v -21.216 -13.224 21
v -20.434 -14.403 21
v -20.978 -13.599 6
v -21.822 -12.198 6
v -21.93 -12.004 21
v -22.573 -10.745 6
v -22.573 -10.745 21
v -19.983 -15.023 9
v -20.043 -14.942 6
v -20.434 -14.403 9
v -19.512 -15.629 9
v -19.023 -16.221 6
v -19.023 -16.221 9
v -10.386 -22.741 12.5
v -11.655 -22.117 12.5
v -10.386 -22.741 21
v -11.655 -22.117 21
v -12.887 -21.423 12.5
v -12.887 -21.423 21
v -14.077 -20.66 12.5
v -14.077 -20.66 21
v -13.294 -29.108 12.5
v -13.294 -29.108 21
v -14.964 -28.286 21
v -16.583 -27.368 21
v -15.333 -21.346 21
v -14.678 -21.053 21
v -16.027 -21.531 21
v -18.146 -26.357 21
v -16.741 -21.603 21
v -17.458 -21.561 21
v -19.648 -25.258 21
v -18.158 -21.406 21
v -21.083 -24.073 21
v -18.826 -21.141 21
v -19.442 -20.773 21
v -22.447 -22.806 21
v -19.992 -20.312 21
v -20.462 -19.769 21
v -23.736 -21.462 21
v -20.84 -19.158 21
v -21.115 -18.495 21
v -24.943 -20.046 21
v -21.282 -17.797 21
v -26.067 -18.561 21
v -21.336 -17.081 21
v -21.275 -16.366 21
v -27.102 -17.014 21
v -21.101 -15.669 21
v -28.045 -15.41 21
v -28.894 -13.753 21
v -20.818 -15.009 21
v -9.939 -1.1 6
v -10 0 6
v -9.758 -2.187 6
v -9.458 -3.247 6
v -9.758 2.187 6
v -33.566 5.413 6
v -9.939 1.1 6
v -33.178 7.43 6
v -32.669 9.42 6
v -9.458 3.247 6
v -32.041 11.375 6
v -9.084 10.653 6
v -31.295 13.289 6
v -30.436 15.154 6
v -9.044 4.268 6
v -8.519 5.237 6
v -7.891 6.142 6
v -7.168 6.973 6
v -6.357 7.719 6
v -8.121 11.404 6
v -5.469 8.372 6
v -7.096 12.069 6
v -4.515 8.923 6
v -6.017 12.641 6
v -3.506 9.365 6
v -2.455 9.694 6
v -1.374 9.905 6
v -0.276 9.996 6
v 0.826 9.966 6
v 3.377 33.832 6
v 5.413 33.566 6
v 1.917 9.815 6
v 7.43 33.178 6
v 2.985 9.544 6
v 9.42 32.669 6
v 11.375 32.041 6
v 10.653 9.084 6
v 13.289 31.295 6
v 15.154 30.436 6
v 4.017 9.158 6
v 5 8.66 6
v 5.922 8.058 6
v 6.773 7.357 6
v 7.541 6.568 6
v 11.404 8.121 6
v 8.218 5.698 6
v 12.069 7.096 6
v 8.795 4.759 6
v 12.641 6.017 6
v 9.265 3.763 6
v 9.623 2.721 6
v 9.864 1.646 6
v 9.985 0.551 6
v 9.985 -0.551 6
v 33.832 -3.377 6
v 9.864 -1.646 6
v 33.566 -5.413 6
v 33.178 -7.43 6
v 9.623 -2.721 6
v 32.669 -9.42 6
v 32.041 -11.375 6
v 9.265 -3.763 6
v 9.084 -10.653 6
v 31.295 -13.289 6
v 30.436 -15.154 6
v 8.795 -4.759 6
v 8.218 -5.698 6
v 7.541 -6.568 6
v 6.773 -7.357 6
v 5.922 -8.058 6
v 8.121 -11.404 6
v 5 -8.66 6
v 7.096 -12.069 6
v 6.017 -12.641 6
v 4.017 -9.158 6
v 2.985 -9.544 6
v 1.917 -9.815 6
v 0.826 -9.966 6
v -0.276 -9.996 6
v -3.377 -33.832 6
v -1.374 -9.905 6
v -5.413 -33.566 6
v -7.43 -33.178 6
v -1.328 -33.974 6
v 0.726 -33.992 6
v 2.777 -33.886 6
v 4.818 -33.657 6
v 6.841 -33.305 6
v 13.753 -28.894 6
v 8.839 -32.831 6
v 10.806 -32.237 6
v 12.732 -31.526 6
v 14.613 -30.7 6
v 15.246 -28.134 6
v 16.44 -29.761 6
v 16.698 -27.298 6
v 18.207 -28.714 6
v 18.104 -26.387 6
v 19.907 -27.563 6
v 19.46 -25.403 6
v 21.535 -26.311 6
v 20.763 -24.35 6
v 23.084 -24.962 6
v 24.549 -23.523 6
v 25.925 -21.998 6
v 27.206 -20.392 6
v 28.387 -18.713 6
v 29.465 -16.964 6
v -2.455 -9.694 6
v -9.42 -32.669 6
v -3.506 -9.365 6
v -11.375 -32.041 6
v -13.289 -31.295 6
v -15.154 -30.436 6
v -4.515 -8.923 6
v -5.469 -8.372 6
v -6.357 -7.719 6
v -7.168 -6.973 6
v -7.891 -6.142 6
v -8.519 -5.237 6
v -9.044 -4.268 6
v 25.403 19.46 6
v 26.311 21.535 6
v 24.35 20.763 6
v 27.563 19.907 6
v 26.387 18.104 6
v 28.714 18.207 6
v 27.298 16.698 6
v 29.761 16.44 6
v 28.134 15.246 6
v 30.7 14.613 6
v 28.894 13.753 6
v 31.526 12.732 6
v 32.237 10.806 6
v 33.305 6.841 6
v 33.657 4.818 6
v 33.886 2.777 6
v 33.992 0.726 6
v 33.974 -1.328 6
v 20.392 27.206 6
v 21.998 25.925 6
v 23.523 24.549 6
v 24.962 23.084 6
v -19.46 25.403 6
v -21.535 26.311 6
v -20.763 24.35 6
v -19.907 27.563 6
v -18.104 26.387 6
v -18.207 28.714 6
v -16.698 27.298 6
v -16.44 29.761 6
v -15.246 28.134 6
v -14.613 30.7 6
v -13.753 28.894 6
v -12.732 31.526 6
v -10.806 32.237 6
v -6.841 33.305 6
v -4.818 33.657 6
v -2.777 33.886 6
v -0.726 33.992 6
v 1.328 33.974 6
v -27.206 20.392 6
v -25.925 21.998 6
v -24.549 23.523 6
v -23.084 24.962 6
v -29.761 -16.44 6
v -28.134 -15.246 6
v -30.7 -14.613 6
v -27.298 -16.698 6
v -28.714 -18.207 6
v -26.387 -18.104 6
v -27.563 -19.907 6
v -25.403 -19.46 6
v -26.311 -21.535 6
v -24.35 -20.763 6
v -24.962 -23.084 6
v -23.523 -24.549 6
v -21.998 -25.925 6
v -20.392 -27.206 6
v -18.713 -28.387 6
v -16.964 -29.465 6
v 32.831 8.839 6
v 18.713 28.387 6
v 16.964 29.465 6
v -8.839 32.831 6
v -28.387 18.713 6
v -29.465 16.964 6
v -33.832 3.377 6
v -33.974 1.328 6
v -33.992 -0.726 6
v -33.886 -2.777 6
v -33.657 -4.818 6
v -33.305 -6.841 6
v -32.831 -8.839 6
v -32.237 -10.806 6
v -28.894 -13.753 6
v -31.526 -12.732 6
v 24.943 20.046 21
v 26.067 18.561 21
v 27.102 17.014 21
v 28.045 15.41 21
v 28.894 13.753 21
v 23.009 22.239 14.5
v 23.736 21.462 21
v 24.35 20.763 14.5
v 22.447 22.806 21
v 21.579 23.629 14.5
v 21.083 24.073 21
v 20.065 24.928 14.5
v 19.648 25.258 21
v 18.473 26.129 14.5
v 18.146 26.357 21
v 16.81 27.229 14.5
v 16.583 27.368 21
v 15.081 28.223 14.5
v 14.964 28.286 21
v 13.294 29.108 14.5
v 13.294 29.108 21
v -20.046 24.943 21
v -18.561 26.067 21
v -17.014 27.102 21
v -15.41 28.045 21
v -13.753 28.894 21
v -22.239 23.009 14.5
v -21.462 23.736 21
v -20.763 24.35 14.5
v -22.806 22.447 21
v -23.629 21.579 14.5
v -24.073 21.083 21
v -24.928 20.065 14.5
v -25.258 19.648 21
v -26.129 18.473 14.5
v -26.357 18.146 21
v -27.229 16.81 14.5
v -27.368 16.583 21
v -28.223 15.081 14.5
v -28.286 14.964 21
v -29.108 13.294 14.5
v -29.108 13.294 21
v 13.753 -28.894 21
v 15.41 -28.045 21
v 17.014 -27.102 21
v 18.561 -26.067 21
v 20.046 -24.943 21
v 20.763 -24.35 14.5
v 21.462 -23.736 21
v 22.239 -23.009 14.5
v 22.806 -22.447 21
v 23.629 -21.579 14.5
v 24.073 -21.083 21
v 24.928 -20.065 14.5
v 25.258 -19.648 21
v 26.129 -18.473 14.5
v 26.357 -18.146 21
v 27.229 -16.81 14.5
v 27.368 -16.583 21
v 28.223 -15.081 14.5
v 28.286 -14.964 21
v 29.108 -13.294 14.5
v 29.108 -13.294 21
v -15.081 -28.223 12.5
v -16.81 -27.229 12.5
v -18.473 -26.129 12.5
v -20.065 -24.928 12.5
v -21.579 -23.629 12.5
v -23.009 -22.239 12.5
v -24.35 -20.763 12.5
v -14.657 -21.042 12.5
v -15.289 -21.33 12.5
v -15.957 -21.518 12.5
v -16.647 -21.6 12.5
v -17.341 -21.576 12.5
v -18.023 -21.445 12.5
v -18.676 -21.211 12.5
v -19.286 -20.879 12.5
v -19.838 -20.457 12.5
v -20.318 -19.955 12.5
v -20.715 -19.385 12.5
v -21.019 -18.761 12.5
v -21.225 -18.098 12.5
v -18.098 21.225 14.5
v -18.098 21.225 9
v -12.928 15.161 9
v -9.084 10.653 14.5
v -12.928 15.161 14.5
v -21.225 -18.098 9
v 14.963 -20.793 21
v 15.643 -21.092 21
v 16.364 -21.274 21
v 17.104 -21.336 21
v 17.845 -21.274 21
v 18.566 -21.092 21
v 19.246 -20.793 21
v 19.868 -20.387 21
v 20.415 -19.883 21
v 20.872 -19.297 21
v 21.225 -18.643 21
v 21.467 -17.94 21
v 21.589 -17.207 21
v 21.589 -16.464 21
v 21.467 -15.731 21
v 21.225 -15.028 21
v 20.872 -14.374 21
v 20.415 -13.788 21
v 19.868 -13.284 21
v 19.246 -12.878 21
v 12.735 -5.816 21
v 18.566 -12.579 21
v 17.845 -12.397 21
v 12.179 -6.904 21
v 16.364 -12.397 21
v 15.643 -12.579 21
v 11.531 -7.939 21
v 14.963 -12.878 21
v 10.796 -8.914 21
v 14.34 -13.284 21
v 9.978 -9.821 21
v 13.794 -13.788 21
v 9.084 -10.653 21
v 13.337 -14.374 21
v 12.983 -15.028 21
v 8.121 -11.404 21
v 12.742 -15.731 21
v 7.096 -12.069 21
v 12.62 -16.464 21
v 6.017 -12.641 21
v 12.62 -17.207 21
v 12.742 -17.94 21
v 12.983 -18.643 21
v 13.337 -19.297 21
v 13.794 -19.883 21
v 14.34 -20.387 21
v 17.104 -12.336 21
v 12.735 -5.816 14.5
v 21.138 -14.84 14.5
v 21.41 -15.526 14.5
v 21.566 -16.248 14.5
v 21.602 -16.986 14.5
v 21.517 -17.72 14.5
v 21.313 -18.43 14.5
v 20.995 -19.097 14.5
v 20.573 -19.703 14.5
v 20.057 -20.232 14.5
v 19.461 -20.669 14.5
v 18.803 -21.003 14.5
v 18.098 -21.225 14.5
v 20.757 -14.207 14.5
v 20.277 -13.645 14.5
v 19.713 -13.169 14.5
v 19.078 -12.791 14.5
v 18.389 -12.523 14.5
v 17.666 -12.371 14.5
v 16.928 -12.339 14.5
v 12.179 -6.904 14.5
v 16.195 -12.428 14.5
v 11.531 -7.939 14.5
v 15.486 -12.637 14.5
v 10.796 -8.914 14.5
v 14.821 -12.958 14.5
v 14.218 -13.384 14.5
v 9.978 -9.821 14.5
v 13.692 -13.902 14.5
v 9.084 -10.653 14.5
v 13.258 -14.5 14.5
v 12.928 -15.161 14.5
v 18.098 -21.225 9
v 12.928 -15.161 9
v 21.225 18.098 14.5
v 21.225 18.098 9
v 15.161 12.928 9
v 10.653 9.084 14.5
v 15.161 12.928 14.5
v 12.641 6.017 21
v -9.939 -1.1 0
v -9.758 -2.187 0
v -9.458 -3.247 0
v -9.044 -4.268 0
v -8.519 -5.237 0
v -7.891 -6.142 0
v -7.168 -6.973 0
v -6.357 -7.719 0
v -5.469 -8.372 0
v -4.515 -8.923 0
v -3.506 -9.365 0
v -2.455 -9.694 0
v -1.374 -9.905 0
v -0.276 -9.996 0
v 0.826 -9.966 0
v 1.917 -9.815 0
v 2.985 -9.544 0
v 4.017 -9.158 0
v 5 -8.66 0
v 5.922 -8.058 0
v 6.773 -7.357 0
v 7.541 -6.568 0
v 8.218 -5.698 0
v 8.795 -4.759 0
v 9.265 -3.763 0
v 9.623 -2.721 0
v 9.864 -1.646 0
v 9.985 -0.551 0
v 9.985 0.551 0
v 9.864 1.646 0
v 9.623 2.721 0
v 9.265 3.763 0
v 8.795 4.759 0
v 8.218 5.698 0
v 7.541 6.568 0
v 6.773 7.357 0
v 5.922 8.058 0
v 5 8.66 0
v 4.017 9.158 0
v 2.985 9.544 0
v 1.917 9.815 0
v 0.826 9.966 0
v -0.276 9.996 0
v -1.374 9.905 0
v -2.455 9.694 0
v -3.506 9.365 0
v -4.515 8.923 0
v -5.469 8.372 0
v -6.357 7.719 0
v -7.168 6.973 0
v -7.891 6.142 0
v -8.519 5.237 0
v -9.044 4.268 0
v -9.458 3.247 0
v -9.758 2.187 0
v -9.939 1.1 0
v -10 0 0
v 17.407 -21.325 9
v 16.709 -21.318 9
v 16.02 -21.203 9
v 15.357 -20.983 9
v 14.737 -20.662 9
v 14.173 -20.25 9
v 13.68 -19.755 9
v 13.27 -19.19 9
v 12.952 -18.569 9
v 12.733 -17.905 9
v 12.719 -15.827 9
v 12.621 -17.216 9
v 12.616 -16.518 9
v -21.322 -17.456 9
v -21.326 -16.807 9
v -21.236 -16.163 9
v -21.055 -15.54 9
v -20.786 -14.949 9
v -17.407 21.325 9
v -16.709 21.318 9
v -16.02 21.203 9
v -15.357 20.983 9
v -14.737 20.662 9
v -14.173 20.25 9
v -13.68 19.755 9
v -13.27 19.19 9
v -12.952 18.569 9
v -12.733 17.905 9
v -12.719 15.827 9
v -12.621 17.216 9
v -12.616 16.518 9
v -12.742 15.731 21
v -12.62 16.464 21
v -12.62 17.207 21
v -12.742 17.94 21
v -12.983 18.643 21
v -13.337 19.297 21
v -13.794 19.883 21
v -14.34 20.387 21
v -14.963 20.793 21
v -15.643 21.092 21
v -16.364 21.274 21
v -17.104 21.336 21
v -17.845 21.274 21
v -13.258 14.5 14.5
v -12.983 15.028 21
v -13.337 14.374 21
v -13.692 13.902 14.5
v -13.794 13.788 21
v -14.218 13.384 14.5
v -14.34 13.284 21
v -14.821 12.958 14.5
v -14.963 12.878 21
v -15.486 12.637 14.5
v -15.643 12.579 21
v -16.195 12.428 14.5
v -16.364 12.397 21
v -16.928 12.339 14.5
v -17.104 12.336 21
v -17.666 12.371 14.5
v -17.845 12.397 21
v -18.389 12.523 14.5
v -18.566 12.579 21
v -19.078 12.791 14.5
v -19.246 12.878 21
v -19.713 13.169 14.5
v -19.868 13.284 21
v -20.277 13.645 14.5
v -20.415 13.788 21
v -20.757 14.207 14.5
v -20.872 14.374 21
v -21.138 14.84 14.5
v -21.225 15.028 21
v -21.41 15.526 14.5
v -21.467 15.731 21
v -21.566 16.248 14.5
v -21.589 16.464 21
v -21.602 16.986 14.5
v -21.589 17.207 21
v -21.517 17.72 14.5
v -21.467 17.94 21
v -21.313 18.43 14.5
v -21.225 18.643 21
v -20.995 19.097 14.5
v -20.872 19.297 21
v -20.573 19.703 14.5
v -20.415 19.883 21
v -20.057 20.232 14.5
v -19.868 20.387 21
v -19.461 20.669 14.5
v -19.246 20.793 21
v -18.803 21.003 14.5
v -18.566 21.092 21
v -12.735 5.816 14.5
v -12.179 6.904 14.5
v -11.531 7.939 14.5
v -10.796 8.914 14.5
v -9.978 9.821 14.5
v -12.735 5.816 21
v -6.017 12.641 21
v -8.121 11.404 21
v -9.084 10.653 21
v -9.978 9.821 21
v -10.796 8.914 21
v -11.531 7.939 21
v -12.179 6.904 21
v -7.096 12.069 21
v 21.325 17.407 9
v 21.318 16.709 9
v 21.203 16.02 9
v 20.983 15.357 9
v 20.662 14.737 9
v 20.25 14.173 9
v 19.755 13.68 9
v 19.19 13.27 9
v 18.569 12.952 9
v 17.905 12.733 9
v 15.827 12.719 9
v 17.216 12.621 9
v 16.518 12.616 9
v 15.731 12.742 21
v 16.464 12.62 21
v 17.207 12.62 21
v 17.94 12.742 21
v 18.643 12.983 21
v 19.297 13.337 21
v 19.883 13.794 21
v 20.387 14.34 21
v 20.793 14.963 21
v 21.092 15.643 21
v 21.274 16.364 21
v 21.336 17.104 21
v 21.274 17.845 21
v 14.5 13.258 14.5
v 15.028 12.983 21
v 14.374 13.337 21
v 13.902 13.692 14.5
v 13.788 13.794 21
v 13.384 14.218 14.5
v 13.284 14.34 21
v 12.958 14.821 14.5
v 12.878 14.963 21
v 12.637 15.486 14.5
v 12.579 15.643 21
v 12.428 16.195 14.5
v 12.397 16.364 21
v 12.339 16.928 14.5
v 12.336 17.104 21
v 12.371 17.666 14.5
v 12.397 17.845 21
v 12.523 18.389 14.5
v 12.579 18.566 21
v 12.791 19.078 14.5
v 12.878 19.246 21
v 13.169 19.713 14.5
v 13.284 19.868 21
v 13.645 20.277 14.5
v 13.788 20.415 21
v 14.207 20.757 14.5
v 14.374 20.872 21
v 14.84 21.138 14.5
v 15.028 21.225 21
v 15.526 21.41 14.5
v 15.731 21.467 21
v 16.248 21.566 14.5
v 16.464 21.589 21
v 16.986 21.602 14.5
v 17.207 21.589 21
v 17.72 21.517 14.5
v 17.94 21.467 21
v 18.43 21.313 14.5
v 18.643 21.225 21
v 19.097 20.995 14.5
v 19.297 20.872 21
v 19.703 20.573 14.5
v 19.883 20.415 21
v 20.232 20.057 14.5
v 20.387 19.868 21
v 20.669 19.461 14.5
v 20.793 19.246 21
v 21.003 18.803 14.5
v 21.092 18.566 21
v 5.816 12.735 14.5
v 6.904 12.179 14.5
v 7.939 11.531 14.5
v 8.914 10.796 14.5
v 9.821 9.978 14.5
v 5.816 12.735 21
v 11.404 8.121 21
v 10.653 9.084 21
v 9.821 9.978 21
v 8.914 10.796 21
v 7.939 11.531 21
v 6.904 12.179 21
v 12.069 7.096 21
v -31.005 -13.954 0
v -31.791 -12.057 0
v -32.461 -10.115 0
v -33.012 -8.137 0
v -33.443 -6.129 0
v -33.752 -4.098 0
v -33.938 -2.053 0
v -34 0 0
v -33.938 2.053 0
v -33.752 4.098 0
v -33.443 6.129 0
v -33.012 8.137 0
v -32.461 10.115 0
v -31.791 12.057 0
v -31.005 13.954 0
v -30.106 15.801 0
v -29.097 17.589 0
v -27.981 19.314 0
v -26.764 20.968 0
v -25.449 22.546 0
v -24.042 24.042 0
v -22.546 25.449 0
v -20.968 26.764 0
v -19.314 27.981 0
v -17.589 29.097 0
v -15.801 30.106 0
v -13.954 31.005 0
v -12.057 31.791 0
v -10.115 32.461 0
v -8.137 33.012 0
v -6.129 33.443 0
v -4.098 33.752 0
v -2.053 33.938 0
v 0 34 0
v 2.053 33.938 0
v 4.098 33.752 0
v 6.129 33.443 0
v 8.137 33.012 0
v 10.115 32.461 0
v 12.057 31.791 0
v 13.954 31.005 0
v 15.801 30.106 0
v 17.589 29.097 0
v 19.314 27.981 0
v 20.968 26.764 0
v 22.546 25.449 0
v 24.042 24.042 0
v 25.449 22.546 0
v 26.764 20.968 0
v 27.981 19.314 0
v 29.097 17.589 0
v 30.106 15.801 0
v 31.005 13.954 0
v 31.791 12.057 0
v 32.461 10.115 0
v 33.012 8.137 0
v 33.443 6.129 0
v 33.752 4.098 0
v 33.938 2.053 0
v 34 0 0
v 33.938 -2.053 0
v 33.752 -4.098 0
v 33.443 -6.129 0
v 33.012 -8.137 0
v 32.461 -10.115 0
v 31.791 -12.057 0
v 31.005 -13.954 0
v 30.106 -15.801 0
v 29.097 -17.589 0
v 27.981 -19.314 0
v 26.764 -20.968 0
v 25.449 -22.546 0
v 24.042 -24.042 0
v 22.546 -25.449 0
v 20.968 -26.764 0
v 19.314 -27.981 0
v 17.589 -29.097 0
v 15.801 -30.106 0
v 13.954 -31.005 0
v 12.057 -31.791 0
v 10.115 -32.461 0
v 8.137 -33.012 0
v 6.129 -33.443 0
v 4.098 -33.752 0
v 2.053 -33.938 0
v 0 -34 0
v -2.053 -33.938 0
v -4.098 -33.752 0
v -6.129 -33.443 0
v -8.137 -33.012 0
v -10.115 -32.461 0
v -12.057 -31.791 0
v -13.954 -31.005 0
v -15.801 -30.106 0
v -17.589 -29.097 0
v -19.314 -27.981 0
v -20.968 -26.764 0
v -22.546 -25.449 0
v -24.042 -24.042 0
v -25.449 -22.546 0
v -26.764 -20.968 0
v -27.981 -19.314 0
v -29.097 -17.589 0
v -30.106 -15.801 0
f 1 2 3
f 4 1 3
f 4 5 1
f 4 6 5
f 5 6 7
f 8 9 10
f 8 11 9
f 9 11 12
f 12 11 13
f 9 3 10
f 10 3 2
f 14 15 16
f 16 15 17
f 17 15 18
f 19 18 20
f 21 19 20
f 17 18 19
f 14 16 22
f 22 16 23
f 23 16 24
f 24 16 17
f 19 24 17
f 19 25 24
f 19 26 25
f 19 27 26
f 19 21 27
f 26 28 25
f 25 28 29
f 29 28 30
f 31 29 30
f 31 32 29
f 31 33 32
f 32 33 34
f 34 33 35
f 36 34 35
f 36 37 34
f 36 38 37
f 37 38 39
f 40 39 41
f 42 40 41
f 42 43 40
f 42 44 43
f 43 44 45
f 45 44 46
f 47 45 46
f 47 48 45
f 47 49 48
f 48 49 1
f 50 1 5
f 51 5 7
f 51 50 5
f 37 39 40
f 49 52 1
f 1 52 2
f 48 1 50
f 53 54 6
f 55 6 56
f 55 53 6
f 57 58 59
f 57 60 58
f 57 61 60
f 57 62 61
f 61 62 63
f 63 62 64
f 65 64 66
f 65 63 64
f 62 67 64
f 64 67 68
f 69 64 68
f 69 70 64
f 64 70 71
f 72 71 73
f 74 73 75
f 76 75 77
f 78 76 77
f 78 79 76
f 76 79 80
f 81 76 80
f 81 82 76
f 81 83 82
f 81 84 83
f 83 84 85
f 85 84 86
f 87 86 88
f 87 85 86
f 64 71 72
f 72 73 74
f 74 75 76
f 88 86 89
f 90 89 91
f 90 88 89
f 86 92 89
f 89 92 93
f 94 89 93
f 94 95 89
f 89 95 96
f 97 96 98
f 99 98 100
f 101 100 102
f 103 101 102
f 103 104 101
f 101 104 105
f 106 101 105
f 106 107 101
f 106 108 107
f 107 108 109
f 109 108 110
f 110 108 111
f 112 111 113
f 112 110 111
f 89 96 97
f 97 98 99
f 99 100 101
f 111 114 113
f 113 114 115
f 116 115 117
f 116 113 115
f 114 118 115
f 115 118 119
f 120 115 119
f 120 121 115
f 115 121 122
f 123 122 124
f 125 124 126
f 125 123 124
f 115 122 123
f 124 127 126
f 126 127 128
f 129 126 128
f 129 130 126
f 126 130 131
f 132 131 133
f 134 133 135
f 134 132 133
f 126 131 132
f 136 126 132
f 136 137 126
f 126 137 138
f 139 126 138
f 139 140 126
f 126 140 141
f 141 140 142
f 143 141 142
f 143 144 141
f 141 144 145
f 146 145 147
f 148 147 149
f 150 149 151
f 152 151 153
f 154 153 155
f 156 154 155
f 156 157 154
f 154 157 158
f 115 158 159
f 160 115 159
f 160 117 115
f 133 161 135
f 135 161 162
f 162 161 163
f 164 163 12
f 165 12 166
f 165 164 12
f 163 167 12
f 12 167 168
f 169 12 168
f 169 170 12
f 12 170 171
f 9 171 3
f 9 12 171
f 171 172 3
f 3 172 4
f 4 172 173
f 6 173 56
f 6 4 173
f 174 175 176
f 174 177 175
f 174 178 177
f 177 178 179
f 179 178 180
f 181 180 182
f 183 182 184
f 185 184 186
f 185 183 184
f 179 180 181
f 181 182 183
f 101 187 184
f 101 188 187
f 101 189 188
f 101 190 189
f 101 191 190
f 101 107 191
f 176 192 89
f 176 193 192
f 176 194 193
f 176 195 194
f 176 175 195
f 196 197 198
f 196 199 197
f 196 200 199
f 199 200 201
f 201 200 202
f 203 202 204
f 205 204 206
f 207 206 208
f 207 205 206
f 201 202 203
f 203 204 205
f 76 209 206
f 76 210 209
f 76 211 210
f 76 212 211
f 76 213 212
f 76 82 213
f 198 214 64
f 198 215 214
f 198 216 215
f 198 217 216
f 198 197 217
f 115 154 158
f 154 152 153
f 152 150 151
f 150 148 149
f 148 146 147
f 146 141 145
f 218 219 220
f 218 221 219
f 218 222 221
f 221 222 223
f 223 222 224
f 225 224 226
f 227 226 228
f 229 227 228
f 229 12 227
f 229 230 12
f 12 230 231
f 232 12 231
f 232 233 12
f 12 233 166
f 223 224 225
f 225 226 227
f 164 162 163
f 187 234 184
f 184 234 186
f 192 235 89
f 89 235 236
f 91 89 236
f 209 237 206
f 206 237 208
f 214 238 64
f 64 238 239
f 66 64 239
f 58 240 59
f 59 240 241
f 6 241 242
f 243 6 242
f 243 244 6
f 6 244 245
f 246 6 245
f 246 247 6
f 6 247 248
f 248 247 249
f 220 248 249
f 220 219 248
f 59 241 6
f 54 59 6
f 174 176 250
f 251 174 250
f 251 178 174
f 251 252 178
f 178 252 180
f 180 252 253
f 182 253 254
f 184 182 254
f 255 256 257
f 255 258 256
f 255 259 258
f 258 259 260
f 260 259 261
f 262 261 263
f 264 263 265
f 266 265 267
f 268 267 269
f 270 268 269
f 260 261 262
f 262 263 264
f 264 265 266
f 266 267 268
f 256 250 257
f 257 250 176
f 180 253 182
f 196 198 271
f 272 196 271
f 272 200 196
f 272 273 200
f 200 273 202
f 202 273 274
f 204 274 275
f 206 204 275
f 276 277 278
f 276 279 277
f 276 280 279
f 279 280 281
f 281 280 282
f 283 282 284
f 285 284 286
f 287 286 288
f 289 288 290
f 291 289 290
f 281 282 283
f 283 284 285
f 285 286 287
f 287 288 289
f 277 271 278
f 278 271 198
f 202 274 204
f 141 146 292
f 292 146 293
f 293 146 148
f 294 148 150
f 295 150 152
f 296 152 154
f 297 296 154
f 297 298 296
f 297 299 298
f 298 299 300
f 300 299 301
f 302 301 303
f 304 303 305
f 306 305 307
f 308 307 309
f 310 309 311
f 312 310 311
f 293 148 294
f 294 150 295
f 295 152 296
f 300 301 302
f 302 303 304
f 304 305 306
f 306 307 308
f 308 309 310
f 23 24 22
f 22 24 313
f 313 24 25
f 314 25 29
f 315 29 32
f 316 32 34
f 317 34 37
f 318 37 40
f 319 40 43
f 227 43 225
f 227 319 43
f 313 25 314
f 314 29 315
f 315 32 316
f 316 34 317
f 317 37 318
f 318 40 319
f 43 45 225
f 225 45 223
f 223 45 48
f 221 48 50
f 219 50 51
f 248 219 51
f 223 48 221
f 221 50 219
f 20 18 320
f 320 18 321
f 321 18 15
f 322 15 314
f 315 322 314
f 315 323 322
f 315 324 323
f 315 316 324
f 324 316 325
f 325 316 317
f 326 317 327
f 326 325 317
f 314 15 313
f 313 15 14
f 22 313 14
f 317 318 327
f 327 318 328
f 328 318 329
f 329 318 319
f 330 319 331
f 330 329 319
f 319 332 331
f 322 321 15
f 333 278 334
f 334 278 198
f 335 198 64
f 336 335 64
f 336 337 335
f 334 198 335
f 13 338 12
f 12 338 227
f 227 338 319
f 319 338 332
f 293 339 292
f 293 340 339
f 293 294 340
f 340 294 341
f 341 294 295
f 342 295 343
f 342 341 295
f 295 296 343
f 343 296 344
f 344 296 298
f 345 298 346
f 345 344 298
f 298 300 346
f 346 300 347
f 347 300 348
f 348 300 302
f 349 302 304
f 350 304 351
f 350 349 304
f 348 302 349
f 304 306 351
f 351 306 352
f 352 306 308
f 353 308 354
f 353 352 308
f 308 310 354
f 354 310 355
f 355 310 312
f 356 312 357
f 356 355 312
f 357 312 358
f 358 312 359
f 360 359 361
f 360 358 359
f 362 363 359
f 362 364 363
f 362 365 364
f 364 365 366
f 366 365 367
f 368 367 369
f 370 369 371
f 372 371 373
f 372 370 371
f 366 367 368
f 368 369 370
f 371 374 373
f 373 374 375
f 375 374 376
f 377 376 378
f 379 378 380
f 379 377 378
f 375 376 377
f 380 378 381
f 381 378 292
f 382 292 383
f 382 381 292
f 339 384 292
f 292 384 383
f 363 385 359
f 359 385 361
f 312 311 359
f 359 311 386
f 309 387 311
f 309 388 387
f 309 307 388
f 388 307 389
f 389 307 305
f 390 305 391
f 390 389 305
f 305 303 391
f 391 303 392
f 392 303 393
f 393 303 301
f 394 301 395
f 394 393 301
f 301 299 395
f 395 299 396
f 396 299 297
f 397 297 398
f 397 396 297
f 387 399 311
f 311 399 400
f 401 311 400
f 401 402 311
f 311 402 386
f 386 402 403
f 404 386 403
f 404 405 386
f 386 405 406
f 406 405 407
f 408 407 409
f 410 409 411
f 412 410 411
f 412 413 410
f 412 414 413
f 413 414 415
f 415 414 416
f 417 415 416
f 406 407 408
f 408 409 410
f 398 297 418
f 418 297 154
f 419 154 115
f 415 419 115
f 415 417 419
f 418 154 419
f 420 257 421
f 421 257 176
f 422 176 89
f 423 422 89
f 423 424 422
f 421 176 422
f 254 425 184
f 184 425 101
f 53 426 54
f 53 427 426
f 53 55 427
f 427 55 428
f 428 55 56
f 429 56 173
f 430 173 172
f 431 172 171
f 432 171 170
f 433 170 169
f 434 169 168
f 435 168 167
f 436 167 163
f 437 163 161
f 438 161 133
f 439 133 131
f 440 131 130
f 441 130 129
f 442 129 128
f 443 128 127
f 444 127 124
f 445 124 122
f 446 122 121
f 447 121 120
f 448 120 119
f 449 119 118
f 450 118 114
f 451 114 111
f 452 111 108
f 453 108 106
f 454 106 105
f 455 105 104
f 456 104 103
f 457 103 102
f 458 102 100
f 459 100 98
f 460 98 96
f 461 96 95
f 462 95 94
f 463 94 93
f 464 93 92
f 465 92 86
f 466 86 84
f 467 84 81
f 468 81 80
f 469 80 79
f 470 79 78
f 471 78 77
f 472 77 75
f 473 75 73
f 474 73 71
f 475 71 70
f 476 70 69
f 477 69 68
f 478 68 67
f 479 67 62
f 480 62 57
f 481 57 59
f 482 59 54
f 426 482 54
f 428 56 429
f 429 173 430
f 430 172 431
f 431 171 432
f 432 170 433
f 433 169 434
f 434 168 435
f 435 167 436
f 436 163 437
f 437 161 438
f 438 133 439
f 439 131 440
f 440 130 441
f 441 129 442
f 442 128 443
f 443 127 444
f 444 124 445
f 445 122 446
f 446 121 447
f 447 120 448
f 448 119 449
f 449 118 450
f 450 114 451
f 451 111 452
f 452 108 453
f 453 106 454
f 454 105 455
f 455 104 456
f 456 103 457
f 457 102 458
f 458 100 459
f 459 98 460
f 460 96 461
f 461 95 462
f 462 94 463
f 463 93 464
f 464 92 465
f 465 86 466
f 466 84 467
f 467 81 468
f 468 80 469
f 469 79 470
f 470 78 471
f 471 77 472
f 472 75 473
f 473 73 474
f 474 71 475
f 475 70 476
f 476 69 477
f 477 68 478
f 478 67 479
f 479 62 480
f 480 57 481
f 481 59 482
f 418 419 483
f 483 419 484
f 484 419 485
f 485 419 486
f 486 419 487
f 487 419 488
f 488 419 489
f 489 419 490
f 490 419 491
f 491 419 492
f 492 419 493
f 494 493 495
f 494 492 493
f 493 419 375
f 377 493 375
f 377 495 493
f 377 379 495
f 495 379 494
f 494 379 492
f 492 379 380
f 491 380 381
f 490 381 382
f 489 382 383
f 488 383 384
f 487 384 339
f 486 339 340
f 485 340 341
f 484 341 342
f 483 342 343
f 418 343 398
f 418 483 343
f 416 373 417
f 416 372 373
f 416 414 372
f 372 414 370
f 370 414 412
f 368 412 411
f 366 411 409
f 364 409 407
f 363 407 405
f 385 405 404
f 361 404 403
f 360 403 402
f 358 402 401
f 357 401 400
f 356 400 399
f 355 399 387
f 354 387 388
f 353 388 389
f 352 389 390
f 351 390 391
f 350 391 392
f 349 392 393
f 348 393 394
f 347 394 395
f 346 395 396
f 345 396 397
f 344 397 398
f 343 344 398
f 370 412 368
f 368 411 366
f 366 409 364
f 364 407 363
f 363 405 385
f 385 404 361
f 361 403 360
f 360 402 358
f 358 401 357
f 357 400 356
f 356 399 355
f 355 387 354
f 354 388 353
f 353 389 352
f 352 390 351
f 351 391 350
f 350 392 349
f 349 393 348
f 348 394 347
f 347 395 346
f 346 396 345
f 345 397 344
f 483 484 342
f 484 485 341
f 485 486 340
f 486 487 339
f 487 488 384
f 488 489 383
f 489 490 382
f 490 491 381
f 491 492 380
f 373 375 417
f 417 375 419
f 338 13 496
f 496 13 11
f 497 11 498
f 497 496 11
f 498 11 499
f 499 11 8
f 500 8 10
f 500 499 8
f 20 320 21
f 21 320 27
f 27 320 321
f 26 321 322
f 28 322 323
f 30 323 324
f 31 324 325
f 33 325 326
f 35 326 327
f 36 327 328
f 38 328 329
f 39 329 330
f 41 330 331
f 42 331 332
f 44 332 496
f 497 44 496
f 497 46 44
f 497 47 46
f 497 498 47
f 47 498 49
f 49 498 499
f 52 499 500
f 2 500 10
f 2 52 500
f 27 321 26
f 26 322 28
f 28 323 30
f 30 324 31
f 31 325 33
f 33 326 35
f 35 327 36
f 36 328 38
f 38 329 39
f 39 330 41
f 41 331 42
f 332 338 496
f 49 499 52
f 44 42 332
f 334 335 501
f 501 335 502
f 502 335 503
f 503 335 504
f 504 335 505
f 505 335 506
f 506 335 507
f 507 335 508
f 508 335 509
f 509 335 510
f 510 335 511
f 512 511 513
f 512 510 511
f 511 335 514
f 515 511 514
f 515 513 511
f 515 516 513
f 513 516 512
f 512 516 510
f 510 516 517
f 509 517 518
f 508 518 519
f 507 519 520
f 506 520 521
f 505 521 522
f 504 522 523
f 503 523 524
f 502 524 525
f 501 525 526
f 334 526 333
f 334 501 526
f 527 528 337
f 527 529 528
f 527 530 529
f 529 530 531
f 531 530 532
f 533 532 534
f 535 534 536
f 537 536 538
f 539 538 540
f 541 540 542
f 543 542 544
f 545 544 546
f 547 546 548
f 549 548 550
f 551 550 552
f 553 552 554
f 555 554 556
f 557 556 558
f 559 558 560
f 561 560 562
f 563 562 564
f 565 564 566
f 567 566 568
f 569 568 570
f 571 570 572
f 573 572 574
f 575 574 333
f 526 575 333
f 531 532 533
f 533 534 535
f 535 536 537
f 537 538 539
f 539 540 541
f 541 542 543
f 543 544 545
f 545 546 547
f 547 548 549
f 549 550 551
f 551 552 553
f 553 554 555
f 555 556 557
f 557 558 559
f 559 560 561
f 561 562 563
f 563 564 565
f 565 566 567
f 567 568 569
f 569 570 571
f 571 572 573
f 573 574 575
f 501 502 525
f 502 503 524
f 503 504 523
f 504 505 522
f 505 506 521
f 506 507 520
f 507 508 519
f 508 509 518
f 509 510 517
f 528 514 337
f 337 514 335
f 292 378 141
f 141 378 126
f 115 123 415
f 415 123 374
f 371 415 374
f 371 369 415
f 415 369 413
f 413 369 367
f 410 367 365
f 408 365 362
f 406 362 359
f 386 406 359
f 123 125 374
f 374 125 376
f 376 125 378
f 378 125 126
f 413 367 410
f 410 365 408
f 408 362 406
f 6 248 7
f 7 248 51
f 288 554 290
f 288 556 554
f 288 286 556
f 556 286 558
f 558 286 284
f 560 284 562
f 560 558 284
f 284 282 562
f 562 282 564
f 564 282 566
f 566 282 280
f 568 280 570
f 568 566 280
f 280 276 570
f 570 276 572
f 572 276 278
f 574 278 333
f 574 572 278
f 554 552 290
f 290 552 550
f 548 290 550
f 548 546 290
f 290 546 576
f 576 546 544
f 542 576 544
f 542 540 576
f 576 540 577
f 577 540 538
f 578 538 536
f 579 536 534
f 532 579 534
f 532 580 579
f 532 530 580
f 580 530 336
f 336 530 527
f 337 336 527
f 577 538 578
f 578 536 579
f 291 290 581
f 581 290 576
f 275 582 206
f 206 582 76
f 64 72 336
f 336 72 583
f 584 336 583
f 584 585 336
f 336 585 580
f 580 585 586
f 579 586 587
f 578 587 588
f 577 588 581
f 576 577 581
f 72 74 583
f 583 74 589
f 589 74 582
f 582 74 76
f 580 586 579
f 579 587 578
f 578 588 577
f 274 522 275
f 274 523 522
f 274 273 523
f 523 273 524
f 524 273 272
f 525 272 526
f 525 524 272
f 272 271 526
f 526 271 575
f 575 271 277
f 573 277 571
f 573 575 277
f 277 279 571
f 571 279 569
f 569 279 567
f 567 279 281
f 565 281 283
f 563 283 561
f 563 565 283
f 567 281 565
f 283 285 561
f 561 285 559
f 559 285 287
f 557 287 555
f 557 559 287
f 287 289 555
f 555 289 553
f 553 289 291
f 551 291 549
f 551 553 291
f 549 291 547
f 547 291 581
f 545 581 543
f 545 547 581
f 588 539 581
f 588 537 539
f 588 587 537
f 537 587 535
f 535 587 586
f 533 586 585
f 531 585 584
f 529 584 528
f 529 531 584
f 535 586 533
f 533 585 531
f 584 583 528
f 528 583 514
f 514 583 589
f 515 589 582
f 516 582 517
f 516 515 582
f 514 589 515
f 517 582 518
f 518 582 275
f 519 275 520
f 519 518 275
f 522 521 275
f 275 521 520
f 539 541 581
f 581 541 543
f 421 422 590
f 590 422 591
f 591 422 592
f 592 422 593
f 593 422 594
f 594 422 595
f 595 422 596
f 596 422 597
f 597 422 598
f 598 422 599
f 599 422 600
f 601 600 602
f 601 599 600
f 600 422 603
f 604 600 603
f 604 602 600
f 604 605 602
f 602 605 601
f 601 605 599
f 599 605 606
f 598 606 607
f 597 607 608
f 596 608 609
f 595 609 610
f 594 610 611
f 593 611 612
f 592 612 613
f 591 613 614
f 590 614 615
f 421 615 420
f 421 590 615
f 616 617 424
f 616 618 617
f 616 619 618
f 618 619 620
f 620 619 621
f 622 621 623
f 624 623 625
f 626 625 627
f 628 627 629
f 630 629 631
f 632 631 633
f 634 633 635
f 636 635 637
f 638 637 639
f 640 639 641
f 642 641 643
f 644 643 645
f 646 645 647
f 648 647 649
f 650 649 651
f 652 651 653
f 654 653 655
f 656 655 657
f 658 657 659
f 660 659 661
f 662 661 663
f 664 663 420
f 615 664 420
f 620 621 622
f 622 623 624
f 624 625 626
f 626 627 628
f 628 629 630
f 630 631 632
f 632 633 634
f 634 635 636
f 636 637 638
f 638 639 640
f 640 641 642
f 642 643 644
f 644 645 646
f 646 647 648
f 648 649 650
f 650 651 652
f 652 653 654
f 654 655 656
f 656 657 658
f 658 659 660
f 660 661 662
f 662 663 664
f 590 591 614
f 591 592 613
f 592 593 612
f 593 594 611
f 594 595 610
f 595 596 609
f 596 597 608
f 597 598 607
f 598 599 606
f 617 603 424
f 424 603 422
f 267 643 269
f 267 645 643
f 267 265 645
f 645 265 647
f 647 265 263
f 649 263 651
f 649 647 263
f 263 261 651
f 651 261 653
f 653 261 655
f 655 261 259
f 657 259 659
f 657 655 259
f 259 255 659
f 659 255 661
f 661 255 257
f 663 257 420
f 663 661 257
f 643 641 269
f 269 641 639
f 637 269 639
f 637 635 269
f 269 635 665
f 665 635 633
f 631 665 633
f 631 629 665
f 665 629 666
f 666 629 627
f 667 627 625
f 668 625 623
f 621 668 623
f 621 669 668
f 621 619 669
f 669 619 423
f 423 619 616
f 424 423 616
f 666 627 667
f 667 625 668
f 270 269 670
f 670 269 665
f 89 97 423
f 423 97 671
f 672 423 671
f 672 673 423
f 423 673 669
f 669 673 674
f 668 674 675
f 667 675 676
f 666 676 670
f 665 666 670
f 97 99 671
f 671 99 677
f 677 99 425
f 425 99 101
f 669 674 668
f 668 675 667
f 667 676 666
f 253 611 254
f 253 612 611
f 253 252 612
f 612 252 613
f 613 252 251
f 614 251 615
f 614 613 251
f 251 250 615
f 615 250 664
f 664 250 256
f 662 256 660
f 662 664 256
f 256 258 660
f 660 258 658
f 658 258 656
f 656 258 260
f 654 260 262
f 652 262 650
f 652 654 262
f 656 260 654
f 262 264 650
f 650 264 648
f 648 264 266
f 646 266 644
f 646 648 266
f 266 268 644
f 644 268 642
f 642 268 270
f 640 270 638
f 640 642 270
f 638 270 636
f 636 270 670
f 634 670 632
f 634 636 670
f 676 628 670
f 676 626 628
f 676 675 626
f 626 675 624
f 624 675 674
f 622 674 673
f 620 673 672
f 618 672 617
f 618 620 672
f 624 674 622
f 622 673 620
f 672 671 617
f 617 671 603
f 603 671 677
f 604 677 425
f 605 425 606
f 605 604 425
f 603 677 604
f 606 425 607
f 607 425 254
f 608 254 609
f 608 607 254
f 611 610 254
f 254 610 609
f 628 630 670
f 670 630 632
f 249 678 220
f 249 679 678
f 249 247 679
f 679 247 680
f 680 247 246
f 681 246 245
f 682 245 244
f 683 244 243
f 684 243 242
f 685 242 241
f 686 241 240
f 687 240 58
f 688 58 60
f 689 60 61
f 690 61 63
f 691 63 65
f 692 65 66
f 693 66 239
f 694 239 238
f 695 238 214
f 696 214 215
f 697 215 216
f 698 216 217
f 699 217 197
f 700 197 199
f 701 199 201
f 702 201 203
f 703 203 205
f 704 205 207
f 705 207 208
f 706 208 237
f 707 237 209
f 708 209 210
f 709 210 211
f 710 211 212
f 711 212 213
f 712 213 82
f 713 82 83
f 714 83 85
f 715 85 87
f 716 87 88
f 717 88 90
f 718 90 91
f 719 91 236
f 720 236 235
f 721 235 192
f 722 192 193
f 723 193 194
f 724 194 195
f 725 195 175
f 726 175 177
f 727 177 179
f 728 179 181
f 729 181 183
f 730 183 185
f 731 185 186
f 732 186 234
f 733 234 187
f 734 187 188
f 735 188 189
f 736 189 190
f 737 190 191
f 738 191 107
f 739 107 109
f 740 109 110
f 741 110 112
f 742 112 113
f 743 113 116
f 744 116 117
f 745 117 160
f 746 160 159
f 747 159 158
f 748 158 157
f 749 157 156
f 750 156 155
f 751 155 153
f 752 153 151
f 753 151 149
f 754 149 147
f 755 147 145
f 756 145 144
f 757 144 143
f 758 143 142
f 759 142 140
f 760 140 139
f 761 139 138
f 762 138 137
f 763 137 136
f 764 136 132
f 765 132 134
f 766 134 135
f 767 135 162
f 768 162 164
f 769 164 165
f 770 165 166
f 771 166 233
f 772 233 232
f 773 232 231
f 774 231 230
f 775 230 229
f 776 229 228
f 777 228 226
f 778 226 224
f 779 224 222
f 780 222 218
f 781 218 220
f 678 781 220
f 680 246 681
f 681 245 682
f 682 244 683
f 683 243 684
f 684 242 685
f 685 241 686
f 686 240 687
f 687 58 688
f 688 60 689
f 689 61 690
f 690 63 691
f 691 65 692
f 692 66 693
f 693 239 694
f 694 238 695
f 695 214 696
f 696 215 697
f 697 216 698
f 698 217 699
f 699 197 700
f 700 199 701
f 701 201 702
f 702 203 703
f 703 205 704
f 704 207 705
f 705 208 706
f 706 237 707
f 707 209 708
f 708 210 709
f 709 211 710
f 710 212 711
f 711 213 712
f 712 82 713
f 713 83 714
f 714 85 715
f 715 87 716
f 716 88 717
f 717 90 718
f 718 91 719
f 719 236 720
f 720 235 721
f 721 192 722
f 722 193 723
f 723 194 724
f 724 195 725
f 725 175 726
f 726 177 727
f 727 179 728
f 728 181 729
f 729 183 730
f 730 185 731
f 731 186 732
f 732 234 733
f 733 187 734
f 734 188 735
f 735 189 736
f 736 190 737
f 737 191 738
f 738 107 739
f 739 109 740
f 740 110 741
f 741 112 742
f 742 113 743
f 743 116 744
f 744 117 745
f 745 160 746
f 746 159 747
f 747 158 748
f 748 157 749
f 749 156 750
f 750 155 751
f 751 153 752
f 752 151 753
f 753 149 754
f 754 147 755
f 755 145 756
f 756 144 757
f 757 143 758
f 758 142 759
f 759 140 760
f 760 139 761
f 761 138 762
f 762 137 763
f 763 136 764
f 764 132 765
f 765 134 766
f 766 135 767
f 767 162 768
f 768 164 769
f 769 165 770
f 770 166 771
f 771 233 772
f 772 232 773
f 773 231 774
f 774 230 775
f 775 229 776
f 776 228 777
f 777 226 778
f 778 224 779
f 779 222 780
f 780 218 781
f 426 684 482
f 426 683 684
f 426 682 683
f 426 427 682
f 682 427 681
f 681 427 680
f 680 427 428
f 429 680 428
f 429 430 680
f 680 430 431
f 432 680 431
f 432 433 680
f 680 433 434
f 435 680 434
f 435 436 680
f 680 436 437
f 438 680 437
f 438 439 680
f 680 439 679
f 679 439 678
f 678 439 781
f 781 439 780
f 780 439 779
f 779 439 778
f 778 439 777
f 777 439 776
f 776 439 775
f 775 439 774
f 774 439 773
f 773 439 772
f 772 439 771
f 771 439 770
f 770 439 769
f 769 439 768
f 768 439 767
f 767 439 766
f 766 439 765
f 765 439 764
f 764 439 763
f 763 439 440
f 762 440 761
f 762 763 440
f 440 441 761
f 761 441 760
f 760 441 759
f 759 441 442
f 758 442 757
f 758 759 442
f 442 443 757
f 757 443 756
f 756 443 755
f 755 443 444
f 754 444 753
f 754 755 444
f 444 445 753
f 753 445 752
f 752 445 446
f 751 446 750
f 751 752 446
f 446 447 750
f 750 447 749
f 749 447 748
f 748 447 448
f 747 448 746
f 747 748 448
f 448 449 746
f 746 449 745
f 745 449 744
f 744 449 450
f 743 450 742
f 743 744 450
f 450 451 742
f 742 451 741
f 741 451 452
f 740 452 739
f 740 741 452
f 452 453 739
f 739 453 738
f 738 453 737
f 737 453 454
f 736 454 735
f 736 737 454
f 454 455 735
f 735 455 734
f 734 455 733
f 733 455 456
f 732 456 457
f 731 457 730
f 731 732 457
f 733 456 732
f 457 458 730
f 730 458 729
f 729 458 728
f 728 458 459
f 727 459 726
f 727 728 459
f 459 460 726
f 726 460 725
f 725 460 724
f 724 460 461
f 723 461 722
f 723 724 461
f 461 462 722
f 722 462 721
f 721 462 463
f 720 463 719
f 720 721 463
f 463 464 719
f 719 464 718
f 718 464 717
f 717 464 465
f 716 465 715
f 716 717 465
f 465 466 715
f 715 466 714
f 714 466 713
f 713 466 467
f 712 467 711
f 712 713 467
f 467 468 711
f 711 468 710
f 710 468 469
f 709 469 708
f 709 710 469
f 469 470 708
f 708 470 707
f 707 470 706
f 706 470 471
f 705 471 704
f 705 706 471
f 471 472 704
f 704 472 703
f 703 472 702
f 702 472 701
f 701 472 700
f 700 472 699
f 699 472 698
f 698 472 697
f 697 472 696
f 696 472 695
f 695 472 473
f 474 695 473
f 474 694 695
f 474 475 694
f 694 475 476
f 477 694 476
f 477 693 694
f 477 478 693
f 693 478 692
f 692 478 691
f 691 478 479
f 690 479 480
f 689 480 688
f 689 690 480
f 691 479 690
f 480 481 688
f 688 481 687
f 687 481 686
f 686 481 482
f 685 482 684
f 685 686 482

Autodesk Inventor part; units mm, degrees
ref_plane "YZ Plane" through (0, 0, 0) normal (1, 0, 0) x (0, 1, 0)
ref_plane "XZ Plane" through (0, 0, 0) normal (0, 1, 0) x (-1, 0, 0)
ref_plane "XY Plane" through (0, 0, 0) normal (0, 0, 1) x (1, 0, 0)
sketch "Sketch1" plane through (0, 0, 0) normal (0, 0, 1) x (1, 0, 0)
  circle A0 centre (0, 0) radius 34
  dimension "d0" = 68
extrude "Extrusion1" add sketch "Sketch1" along normal blind 6
sketch "Sketch2" plane through (0, 0, 6) normal (0, 0, 1) x (1, 0, 0)
  circle A0 centre (0, 0) radius 34
  circle A1 centre (0, 0) radius 34 projected
  line L0 (0, 0) -> (30.6997, 14.6126) construction
  line L1 (0, 0) -> (25.8716, 22.0604) construction
  line L2 (25.8716, 22.0604) -> (10.653, 9.0837)
  line L3 (30.6997, 14.6126) -> (12.641, 6.017)
  arc A2 (30.6997, 14.6126) -> (25.8716, 22.0604) centre (0, 0) ccw
  arc A3 (12.641, 6.017) -> (10.653, 9.0837) centre (0, 0) ccw
  dimension "d3" = 15
  dimension "d4" = 20
extrude "Extrusion2" add sketch "Sketch2" along normal blind 15 contours L3 A3 L2 A0 picked at (22.8031, 15.025)
sketch "Sketch3" plane through (10.653, 9.0837, 21) normal (-0.6488347, 0.7609293, 0) x (0.7609293, 0.6488347, 0)
  line L0 (0, 15) -> (0, 0) projected
  line L1 (20, 0) -> (0, 0)
  line L2 (0, 0) -> (0, 6.5)
  line L3 (0, 6.5) -> (20, 6.5)
  line L4 (20, 6.5) -> (20, 0)
  line L5 (-14, 25.2) -> (-14, -4.2) projected
  line L6 (-48, 15) -> (20, 15) projected
  point P0 (-14, 21)
  point P1 (18.8415, 15)
  dimension "d7" = 6.5
  dimension "d26" = 8.5
revolve "Revolution1" add sketch "Sketch3" angle 25 about axis through (0, 0, 6) along (0, 0, 1)
sketch "Sketch4" plane through (0, 0, 21) normal (0, 0, 1) x (1, 0, 0)
  circle A0 centre (16.8356, 17.1044) radius 4.5
  arc A1 (12.641, 6.017) -> (5.816, 12.7348) centre (0, 0) ccw projected
  arc A2 (30.6997, 14.6126) -> (14.1245, 30.9273) centre (0, 0) ccw projected
  line L0 (12.641, 6.017) -> (30.6997, 14.6126) projected
  line L1 (5.816, 12.7348) -> (14.1245, 30.9273) projected
  arc A3 (21.6704, 10.3148) -> (9.9702, 21.831) centre (0, 0) ccw construction
  circle A4 centre (0, 0) radius 34 construction
  line L2 (23.8505, 24.2313) -> (19.6046, 19.9177) construction
  dimension "d12" = 9
extrude "Extrusion3" cut sketch "Sketch4" against normal blind 12 contours A0
pattern_circular "Circular Pattern2" count 4 over 360 about axis through (0, 0, 6) along (0, 0, 1) of "Revolution1", "Extrusion3", "Extrusion2"
sketch "Sketch5" plane through (0, 0, 0) normal (0, 0, -1) x (-1, 0, 0)
  circle A0 centre (0, 0) radius 10
  dimension "d23" = 20
extrude "Extrusion4" cut sketch "Sketch5" against normal blind 10
sketch "Sketch6" plane through (-14.1245, -30.9273, 14.5) normal (0, 0, -1) x (-0.9096266, 0.4154268, 0)
  line L0 (11.7881, 8.7204) -> (14.369, 3.1855) projected
  line L1 (0, 0) -> (0, 20)
  arc A0 (0, 0) -> (14.369, 3.1855) centre (0, 34) ccw
  arc A1 (0, 20) -> (5.9167, 21.3117) centre (0, 34) ccw projected
  arc A2 (0, 20) -> (5.9167, 21.3117) centre (0, 34) ccw
  arc A3 (0, 0) -> (14.369, 3.1855) centre (0, 34) ccw projected
  arc A4 (8.4204, 15.9424) -> (11.7881, 8.7204) centre (8.2085, 11.4474) ccw
  arc A5 (8.4204, 15.9424) -> (11.7881, 8.7204) centre (8.2085, 11.4474) ccw projected
  line L2 (14.369, 3.1855) -> (11.7881, 8.7204)
  line L3 (8.4204, 15.9424) -> (5.9167, 21.3117)
  point P0 (0, 34)
extrude "Extrusion5" add sketch "Sketch6" along normal blind 2
sketch "Sketch7" plane through (0, 0, 21) normal (0, 0, 1) x (0.7126851, -0.7014841, 0)
  line L0 (11.6287, -31.9495) -> (9.1517, -25.1441)
  line L1 (4.7883, -13.1557) -> (11.6287, -31.9495) projected
  line L2 (12.9105, -23.776) -> (15.3067, -30.3596)
  arc A0 (11.6287, -31.9495) -> (15.3067, -30.3596) centre (0, 0) ccw
  line L3 (12.9105, -23.776) -> (9.1517, -25.1441)
  arc A1 (-11.6287, -31.9495) -> (11.6287, -31.9495) centre (0, 0) ccw projected
  dimension "d29" = 4
extrude "Extrusion6" [suppressed]
sketch "Sketch8" plane through (-30.6997, -14.6126, 21) normal (0, 0, 1) x (0.9029321, 0.4297832, 0)
  circle A0 centre (34, 0) radius 34 projected
  circle A1 centre (34, 0) radius 34
  circle A2 centre (34, 0) radius 10 projected
  circle A3 centre (34, 0) radius 32
  dimension "d32" = 2
extrude "Extrusion7" cut sketch "Sketch8" against normal up to surface (15 mm away) contours A0
sketch "Sketch9" plane through (0, 0, 21) normal (0, 0, 1) x (0.7126851, -0.7014841, 0)
  point P0 (0, 0)
sketch "Sketch10" plane through (0, 0, 21) normal (0, 0, 1) x (0.7126851, -0.7014841, 0)
  line L0 (4.7883, -13.1557) -> (10.9208, -30.0046)
  line L1 (4.7883, -13.1557) -> (10.9446, -30.0702) projected
  line L2 (-4.7883, -13.1557) -> (-10.9446, -30.0702)
  line L3 (-4.7883, -13.1557) -> (-10.9446, -30.0702) projected
  arc A0 (-10.9446, -30.0702) -> (10.9446, -30.0702) centre (0, 0) ccw projected
  line L4 (7.8665, -21.6129) -> (10.9208, -30.0046)
  arc A1 (-8.5505, -23.4923) -> (8.5505, -23.4923) centre (0, 0) ccw
  line L5 (4.7883, -13.1557) -> (-4.7883, -13.1557)
  line L6 (10.9208, -30.0046) -> (15.734, -30.5587)
  line L7 (15.734, -30.5587) -> (12.8246, -22.565)
  line L8 (12.8246, -22.565) -> (9.1517, -25.1441)
  point P0 (0, 0)
  point P1 (14.6176, -28.4662)
  dimension "d36" = 7
extrude "Extrusion8" cut sketch "Sketch10" against normal up to surface (15 mm away) contours L0 A1 L2 L5
sketch "Sketch11" plane through (-11.1159, -24.3396, 21) normal (0, 0, 1) x (0.9096266, -0.4154268, 0)
  arc A0 (-20.5692, 2.2443) -> (4, -4.9913) centre (0, 26.7578) ccw projected
  point P0 (0, 26.7578)
properties part number "new male 4 bay con"
